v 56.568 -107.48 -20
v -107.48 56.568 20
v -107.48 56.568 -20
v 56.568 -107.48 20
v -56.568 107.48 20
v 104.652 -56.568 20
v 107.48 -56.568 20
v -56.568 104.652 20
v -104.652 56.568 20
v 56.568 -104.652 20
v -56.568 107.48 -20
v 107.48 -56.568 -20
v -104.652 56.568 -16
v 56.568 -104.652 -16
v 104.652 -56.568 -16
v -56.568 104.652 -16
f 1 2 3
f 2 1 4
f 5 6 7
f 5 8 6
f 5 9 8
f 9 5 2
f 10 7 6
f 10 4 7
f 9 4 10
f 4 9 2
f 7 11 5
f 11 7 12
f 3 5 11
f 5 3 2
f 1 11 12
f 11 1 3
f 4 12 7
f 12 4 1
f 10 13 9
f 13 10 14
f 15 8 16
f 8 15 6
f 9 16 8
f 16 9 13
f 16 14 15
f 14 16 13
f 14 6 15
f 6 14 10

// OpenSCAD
wallThickness = 4;

width = 72;
depth = 232;
height = 40;

rotate([0, 0, 45]) {
    difference() { 
        cube([width, depth, height], center = true);
        translate([0, 0, wallThickness]){
            cube([width - wallThickness, depth - wallThickness, height], center = true);
        }
    }
}
